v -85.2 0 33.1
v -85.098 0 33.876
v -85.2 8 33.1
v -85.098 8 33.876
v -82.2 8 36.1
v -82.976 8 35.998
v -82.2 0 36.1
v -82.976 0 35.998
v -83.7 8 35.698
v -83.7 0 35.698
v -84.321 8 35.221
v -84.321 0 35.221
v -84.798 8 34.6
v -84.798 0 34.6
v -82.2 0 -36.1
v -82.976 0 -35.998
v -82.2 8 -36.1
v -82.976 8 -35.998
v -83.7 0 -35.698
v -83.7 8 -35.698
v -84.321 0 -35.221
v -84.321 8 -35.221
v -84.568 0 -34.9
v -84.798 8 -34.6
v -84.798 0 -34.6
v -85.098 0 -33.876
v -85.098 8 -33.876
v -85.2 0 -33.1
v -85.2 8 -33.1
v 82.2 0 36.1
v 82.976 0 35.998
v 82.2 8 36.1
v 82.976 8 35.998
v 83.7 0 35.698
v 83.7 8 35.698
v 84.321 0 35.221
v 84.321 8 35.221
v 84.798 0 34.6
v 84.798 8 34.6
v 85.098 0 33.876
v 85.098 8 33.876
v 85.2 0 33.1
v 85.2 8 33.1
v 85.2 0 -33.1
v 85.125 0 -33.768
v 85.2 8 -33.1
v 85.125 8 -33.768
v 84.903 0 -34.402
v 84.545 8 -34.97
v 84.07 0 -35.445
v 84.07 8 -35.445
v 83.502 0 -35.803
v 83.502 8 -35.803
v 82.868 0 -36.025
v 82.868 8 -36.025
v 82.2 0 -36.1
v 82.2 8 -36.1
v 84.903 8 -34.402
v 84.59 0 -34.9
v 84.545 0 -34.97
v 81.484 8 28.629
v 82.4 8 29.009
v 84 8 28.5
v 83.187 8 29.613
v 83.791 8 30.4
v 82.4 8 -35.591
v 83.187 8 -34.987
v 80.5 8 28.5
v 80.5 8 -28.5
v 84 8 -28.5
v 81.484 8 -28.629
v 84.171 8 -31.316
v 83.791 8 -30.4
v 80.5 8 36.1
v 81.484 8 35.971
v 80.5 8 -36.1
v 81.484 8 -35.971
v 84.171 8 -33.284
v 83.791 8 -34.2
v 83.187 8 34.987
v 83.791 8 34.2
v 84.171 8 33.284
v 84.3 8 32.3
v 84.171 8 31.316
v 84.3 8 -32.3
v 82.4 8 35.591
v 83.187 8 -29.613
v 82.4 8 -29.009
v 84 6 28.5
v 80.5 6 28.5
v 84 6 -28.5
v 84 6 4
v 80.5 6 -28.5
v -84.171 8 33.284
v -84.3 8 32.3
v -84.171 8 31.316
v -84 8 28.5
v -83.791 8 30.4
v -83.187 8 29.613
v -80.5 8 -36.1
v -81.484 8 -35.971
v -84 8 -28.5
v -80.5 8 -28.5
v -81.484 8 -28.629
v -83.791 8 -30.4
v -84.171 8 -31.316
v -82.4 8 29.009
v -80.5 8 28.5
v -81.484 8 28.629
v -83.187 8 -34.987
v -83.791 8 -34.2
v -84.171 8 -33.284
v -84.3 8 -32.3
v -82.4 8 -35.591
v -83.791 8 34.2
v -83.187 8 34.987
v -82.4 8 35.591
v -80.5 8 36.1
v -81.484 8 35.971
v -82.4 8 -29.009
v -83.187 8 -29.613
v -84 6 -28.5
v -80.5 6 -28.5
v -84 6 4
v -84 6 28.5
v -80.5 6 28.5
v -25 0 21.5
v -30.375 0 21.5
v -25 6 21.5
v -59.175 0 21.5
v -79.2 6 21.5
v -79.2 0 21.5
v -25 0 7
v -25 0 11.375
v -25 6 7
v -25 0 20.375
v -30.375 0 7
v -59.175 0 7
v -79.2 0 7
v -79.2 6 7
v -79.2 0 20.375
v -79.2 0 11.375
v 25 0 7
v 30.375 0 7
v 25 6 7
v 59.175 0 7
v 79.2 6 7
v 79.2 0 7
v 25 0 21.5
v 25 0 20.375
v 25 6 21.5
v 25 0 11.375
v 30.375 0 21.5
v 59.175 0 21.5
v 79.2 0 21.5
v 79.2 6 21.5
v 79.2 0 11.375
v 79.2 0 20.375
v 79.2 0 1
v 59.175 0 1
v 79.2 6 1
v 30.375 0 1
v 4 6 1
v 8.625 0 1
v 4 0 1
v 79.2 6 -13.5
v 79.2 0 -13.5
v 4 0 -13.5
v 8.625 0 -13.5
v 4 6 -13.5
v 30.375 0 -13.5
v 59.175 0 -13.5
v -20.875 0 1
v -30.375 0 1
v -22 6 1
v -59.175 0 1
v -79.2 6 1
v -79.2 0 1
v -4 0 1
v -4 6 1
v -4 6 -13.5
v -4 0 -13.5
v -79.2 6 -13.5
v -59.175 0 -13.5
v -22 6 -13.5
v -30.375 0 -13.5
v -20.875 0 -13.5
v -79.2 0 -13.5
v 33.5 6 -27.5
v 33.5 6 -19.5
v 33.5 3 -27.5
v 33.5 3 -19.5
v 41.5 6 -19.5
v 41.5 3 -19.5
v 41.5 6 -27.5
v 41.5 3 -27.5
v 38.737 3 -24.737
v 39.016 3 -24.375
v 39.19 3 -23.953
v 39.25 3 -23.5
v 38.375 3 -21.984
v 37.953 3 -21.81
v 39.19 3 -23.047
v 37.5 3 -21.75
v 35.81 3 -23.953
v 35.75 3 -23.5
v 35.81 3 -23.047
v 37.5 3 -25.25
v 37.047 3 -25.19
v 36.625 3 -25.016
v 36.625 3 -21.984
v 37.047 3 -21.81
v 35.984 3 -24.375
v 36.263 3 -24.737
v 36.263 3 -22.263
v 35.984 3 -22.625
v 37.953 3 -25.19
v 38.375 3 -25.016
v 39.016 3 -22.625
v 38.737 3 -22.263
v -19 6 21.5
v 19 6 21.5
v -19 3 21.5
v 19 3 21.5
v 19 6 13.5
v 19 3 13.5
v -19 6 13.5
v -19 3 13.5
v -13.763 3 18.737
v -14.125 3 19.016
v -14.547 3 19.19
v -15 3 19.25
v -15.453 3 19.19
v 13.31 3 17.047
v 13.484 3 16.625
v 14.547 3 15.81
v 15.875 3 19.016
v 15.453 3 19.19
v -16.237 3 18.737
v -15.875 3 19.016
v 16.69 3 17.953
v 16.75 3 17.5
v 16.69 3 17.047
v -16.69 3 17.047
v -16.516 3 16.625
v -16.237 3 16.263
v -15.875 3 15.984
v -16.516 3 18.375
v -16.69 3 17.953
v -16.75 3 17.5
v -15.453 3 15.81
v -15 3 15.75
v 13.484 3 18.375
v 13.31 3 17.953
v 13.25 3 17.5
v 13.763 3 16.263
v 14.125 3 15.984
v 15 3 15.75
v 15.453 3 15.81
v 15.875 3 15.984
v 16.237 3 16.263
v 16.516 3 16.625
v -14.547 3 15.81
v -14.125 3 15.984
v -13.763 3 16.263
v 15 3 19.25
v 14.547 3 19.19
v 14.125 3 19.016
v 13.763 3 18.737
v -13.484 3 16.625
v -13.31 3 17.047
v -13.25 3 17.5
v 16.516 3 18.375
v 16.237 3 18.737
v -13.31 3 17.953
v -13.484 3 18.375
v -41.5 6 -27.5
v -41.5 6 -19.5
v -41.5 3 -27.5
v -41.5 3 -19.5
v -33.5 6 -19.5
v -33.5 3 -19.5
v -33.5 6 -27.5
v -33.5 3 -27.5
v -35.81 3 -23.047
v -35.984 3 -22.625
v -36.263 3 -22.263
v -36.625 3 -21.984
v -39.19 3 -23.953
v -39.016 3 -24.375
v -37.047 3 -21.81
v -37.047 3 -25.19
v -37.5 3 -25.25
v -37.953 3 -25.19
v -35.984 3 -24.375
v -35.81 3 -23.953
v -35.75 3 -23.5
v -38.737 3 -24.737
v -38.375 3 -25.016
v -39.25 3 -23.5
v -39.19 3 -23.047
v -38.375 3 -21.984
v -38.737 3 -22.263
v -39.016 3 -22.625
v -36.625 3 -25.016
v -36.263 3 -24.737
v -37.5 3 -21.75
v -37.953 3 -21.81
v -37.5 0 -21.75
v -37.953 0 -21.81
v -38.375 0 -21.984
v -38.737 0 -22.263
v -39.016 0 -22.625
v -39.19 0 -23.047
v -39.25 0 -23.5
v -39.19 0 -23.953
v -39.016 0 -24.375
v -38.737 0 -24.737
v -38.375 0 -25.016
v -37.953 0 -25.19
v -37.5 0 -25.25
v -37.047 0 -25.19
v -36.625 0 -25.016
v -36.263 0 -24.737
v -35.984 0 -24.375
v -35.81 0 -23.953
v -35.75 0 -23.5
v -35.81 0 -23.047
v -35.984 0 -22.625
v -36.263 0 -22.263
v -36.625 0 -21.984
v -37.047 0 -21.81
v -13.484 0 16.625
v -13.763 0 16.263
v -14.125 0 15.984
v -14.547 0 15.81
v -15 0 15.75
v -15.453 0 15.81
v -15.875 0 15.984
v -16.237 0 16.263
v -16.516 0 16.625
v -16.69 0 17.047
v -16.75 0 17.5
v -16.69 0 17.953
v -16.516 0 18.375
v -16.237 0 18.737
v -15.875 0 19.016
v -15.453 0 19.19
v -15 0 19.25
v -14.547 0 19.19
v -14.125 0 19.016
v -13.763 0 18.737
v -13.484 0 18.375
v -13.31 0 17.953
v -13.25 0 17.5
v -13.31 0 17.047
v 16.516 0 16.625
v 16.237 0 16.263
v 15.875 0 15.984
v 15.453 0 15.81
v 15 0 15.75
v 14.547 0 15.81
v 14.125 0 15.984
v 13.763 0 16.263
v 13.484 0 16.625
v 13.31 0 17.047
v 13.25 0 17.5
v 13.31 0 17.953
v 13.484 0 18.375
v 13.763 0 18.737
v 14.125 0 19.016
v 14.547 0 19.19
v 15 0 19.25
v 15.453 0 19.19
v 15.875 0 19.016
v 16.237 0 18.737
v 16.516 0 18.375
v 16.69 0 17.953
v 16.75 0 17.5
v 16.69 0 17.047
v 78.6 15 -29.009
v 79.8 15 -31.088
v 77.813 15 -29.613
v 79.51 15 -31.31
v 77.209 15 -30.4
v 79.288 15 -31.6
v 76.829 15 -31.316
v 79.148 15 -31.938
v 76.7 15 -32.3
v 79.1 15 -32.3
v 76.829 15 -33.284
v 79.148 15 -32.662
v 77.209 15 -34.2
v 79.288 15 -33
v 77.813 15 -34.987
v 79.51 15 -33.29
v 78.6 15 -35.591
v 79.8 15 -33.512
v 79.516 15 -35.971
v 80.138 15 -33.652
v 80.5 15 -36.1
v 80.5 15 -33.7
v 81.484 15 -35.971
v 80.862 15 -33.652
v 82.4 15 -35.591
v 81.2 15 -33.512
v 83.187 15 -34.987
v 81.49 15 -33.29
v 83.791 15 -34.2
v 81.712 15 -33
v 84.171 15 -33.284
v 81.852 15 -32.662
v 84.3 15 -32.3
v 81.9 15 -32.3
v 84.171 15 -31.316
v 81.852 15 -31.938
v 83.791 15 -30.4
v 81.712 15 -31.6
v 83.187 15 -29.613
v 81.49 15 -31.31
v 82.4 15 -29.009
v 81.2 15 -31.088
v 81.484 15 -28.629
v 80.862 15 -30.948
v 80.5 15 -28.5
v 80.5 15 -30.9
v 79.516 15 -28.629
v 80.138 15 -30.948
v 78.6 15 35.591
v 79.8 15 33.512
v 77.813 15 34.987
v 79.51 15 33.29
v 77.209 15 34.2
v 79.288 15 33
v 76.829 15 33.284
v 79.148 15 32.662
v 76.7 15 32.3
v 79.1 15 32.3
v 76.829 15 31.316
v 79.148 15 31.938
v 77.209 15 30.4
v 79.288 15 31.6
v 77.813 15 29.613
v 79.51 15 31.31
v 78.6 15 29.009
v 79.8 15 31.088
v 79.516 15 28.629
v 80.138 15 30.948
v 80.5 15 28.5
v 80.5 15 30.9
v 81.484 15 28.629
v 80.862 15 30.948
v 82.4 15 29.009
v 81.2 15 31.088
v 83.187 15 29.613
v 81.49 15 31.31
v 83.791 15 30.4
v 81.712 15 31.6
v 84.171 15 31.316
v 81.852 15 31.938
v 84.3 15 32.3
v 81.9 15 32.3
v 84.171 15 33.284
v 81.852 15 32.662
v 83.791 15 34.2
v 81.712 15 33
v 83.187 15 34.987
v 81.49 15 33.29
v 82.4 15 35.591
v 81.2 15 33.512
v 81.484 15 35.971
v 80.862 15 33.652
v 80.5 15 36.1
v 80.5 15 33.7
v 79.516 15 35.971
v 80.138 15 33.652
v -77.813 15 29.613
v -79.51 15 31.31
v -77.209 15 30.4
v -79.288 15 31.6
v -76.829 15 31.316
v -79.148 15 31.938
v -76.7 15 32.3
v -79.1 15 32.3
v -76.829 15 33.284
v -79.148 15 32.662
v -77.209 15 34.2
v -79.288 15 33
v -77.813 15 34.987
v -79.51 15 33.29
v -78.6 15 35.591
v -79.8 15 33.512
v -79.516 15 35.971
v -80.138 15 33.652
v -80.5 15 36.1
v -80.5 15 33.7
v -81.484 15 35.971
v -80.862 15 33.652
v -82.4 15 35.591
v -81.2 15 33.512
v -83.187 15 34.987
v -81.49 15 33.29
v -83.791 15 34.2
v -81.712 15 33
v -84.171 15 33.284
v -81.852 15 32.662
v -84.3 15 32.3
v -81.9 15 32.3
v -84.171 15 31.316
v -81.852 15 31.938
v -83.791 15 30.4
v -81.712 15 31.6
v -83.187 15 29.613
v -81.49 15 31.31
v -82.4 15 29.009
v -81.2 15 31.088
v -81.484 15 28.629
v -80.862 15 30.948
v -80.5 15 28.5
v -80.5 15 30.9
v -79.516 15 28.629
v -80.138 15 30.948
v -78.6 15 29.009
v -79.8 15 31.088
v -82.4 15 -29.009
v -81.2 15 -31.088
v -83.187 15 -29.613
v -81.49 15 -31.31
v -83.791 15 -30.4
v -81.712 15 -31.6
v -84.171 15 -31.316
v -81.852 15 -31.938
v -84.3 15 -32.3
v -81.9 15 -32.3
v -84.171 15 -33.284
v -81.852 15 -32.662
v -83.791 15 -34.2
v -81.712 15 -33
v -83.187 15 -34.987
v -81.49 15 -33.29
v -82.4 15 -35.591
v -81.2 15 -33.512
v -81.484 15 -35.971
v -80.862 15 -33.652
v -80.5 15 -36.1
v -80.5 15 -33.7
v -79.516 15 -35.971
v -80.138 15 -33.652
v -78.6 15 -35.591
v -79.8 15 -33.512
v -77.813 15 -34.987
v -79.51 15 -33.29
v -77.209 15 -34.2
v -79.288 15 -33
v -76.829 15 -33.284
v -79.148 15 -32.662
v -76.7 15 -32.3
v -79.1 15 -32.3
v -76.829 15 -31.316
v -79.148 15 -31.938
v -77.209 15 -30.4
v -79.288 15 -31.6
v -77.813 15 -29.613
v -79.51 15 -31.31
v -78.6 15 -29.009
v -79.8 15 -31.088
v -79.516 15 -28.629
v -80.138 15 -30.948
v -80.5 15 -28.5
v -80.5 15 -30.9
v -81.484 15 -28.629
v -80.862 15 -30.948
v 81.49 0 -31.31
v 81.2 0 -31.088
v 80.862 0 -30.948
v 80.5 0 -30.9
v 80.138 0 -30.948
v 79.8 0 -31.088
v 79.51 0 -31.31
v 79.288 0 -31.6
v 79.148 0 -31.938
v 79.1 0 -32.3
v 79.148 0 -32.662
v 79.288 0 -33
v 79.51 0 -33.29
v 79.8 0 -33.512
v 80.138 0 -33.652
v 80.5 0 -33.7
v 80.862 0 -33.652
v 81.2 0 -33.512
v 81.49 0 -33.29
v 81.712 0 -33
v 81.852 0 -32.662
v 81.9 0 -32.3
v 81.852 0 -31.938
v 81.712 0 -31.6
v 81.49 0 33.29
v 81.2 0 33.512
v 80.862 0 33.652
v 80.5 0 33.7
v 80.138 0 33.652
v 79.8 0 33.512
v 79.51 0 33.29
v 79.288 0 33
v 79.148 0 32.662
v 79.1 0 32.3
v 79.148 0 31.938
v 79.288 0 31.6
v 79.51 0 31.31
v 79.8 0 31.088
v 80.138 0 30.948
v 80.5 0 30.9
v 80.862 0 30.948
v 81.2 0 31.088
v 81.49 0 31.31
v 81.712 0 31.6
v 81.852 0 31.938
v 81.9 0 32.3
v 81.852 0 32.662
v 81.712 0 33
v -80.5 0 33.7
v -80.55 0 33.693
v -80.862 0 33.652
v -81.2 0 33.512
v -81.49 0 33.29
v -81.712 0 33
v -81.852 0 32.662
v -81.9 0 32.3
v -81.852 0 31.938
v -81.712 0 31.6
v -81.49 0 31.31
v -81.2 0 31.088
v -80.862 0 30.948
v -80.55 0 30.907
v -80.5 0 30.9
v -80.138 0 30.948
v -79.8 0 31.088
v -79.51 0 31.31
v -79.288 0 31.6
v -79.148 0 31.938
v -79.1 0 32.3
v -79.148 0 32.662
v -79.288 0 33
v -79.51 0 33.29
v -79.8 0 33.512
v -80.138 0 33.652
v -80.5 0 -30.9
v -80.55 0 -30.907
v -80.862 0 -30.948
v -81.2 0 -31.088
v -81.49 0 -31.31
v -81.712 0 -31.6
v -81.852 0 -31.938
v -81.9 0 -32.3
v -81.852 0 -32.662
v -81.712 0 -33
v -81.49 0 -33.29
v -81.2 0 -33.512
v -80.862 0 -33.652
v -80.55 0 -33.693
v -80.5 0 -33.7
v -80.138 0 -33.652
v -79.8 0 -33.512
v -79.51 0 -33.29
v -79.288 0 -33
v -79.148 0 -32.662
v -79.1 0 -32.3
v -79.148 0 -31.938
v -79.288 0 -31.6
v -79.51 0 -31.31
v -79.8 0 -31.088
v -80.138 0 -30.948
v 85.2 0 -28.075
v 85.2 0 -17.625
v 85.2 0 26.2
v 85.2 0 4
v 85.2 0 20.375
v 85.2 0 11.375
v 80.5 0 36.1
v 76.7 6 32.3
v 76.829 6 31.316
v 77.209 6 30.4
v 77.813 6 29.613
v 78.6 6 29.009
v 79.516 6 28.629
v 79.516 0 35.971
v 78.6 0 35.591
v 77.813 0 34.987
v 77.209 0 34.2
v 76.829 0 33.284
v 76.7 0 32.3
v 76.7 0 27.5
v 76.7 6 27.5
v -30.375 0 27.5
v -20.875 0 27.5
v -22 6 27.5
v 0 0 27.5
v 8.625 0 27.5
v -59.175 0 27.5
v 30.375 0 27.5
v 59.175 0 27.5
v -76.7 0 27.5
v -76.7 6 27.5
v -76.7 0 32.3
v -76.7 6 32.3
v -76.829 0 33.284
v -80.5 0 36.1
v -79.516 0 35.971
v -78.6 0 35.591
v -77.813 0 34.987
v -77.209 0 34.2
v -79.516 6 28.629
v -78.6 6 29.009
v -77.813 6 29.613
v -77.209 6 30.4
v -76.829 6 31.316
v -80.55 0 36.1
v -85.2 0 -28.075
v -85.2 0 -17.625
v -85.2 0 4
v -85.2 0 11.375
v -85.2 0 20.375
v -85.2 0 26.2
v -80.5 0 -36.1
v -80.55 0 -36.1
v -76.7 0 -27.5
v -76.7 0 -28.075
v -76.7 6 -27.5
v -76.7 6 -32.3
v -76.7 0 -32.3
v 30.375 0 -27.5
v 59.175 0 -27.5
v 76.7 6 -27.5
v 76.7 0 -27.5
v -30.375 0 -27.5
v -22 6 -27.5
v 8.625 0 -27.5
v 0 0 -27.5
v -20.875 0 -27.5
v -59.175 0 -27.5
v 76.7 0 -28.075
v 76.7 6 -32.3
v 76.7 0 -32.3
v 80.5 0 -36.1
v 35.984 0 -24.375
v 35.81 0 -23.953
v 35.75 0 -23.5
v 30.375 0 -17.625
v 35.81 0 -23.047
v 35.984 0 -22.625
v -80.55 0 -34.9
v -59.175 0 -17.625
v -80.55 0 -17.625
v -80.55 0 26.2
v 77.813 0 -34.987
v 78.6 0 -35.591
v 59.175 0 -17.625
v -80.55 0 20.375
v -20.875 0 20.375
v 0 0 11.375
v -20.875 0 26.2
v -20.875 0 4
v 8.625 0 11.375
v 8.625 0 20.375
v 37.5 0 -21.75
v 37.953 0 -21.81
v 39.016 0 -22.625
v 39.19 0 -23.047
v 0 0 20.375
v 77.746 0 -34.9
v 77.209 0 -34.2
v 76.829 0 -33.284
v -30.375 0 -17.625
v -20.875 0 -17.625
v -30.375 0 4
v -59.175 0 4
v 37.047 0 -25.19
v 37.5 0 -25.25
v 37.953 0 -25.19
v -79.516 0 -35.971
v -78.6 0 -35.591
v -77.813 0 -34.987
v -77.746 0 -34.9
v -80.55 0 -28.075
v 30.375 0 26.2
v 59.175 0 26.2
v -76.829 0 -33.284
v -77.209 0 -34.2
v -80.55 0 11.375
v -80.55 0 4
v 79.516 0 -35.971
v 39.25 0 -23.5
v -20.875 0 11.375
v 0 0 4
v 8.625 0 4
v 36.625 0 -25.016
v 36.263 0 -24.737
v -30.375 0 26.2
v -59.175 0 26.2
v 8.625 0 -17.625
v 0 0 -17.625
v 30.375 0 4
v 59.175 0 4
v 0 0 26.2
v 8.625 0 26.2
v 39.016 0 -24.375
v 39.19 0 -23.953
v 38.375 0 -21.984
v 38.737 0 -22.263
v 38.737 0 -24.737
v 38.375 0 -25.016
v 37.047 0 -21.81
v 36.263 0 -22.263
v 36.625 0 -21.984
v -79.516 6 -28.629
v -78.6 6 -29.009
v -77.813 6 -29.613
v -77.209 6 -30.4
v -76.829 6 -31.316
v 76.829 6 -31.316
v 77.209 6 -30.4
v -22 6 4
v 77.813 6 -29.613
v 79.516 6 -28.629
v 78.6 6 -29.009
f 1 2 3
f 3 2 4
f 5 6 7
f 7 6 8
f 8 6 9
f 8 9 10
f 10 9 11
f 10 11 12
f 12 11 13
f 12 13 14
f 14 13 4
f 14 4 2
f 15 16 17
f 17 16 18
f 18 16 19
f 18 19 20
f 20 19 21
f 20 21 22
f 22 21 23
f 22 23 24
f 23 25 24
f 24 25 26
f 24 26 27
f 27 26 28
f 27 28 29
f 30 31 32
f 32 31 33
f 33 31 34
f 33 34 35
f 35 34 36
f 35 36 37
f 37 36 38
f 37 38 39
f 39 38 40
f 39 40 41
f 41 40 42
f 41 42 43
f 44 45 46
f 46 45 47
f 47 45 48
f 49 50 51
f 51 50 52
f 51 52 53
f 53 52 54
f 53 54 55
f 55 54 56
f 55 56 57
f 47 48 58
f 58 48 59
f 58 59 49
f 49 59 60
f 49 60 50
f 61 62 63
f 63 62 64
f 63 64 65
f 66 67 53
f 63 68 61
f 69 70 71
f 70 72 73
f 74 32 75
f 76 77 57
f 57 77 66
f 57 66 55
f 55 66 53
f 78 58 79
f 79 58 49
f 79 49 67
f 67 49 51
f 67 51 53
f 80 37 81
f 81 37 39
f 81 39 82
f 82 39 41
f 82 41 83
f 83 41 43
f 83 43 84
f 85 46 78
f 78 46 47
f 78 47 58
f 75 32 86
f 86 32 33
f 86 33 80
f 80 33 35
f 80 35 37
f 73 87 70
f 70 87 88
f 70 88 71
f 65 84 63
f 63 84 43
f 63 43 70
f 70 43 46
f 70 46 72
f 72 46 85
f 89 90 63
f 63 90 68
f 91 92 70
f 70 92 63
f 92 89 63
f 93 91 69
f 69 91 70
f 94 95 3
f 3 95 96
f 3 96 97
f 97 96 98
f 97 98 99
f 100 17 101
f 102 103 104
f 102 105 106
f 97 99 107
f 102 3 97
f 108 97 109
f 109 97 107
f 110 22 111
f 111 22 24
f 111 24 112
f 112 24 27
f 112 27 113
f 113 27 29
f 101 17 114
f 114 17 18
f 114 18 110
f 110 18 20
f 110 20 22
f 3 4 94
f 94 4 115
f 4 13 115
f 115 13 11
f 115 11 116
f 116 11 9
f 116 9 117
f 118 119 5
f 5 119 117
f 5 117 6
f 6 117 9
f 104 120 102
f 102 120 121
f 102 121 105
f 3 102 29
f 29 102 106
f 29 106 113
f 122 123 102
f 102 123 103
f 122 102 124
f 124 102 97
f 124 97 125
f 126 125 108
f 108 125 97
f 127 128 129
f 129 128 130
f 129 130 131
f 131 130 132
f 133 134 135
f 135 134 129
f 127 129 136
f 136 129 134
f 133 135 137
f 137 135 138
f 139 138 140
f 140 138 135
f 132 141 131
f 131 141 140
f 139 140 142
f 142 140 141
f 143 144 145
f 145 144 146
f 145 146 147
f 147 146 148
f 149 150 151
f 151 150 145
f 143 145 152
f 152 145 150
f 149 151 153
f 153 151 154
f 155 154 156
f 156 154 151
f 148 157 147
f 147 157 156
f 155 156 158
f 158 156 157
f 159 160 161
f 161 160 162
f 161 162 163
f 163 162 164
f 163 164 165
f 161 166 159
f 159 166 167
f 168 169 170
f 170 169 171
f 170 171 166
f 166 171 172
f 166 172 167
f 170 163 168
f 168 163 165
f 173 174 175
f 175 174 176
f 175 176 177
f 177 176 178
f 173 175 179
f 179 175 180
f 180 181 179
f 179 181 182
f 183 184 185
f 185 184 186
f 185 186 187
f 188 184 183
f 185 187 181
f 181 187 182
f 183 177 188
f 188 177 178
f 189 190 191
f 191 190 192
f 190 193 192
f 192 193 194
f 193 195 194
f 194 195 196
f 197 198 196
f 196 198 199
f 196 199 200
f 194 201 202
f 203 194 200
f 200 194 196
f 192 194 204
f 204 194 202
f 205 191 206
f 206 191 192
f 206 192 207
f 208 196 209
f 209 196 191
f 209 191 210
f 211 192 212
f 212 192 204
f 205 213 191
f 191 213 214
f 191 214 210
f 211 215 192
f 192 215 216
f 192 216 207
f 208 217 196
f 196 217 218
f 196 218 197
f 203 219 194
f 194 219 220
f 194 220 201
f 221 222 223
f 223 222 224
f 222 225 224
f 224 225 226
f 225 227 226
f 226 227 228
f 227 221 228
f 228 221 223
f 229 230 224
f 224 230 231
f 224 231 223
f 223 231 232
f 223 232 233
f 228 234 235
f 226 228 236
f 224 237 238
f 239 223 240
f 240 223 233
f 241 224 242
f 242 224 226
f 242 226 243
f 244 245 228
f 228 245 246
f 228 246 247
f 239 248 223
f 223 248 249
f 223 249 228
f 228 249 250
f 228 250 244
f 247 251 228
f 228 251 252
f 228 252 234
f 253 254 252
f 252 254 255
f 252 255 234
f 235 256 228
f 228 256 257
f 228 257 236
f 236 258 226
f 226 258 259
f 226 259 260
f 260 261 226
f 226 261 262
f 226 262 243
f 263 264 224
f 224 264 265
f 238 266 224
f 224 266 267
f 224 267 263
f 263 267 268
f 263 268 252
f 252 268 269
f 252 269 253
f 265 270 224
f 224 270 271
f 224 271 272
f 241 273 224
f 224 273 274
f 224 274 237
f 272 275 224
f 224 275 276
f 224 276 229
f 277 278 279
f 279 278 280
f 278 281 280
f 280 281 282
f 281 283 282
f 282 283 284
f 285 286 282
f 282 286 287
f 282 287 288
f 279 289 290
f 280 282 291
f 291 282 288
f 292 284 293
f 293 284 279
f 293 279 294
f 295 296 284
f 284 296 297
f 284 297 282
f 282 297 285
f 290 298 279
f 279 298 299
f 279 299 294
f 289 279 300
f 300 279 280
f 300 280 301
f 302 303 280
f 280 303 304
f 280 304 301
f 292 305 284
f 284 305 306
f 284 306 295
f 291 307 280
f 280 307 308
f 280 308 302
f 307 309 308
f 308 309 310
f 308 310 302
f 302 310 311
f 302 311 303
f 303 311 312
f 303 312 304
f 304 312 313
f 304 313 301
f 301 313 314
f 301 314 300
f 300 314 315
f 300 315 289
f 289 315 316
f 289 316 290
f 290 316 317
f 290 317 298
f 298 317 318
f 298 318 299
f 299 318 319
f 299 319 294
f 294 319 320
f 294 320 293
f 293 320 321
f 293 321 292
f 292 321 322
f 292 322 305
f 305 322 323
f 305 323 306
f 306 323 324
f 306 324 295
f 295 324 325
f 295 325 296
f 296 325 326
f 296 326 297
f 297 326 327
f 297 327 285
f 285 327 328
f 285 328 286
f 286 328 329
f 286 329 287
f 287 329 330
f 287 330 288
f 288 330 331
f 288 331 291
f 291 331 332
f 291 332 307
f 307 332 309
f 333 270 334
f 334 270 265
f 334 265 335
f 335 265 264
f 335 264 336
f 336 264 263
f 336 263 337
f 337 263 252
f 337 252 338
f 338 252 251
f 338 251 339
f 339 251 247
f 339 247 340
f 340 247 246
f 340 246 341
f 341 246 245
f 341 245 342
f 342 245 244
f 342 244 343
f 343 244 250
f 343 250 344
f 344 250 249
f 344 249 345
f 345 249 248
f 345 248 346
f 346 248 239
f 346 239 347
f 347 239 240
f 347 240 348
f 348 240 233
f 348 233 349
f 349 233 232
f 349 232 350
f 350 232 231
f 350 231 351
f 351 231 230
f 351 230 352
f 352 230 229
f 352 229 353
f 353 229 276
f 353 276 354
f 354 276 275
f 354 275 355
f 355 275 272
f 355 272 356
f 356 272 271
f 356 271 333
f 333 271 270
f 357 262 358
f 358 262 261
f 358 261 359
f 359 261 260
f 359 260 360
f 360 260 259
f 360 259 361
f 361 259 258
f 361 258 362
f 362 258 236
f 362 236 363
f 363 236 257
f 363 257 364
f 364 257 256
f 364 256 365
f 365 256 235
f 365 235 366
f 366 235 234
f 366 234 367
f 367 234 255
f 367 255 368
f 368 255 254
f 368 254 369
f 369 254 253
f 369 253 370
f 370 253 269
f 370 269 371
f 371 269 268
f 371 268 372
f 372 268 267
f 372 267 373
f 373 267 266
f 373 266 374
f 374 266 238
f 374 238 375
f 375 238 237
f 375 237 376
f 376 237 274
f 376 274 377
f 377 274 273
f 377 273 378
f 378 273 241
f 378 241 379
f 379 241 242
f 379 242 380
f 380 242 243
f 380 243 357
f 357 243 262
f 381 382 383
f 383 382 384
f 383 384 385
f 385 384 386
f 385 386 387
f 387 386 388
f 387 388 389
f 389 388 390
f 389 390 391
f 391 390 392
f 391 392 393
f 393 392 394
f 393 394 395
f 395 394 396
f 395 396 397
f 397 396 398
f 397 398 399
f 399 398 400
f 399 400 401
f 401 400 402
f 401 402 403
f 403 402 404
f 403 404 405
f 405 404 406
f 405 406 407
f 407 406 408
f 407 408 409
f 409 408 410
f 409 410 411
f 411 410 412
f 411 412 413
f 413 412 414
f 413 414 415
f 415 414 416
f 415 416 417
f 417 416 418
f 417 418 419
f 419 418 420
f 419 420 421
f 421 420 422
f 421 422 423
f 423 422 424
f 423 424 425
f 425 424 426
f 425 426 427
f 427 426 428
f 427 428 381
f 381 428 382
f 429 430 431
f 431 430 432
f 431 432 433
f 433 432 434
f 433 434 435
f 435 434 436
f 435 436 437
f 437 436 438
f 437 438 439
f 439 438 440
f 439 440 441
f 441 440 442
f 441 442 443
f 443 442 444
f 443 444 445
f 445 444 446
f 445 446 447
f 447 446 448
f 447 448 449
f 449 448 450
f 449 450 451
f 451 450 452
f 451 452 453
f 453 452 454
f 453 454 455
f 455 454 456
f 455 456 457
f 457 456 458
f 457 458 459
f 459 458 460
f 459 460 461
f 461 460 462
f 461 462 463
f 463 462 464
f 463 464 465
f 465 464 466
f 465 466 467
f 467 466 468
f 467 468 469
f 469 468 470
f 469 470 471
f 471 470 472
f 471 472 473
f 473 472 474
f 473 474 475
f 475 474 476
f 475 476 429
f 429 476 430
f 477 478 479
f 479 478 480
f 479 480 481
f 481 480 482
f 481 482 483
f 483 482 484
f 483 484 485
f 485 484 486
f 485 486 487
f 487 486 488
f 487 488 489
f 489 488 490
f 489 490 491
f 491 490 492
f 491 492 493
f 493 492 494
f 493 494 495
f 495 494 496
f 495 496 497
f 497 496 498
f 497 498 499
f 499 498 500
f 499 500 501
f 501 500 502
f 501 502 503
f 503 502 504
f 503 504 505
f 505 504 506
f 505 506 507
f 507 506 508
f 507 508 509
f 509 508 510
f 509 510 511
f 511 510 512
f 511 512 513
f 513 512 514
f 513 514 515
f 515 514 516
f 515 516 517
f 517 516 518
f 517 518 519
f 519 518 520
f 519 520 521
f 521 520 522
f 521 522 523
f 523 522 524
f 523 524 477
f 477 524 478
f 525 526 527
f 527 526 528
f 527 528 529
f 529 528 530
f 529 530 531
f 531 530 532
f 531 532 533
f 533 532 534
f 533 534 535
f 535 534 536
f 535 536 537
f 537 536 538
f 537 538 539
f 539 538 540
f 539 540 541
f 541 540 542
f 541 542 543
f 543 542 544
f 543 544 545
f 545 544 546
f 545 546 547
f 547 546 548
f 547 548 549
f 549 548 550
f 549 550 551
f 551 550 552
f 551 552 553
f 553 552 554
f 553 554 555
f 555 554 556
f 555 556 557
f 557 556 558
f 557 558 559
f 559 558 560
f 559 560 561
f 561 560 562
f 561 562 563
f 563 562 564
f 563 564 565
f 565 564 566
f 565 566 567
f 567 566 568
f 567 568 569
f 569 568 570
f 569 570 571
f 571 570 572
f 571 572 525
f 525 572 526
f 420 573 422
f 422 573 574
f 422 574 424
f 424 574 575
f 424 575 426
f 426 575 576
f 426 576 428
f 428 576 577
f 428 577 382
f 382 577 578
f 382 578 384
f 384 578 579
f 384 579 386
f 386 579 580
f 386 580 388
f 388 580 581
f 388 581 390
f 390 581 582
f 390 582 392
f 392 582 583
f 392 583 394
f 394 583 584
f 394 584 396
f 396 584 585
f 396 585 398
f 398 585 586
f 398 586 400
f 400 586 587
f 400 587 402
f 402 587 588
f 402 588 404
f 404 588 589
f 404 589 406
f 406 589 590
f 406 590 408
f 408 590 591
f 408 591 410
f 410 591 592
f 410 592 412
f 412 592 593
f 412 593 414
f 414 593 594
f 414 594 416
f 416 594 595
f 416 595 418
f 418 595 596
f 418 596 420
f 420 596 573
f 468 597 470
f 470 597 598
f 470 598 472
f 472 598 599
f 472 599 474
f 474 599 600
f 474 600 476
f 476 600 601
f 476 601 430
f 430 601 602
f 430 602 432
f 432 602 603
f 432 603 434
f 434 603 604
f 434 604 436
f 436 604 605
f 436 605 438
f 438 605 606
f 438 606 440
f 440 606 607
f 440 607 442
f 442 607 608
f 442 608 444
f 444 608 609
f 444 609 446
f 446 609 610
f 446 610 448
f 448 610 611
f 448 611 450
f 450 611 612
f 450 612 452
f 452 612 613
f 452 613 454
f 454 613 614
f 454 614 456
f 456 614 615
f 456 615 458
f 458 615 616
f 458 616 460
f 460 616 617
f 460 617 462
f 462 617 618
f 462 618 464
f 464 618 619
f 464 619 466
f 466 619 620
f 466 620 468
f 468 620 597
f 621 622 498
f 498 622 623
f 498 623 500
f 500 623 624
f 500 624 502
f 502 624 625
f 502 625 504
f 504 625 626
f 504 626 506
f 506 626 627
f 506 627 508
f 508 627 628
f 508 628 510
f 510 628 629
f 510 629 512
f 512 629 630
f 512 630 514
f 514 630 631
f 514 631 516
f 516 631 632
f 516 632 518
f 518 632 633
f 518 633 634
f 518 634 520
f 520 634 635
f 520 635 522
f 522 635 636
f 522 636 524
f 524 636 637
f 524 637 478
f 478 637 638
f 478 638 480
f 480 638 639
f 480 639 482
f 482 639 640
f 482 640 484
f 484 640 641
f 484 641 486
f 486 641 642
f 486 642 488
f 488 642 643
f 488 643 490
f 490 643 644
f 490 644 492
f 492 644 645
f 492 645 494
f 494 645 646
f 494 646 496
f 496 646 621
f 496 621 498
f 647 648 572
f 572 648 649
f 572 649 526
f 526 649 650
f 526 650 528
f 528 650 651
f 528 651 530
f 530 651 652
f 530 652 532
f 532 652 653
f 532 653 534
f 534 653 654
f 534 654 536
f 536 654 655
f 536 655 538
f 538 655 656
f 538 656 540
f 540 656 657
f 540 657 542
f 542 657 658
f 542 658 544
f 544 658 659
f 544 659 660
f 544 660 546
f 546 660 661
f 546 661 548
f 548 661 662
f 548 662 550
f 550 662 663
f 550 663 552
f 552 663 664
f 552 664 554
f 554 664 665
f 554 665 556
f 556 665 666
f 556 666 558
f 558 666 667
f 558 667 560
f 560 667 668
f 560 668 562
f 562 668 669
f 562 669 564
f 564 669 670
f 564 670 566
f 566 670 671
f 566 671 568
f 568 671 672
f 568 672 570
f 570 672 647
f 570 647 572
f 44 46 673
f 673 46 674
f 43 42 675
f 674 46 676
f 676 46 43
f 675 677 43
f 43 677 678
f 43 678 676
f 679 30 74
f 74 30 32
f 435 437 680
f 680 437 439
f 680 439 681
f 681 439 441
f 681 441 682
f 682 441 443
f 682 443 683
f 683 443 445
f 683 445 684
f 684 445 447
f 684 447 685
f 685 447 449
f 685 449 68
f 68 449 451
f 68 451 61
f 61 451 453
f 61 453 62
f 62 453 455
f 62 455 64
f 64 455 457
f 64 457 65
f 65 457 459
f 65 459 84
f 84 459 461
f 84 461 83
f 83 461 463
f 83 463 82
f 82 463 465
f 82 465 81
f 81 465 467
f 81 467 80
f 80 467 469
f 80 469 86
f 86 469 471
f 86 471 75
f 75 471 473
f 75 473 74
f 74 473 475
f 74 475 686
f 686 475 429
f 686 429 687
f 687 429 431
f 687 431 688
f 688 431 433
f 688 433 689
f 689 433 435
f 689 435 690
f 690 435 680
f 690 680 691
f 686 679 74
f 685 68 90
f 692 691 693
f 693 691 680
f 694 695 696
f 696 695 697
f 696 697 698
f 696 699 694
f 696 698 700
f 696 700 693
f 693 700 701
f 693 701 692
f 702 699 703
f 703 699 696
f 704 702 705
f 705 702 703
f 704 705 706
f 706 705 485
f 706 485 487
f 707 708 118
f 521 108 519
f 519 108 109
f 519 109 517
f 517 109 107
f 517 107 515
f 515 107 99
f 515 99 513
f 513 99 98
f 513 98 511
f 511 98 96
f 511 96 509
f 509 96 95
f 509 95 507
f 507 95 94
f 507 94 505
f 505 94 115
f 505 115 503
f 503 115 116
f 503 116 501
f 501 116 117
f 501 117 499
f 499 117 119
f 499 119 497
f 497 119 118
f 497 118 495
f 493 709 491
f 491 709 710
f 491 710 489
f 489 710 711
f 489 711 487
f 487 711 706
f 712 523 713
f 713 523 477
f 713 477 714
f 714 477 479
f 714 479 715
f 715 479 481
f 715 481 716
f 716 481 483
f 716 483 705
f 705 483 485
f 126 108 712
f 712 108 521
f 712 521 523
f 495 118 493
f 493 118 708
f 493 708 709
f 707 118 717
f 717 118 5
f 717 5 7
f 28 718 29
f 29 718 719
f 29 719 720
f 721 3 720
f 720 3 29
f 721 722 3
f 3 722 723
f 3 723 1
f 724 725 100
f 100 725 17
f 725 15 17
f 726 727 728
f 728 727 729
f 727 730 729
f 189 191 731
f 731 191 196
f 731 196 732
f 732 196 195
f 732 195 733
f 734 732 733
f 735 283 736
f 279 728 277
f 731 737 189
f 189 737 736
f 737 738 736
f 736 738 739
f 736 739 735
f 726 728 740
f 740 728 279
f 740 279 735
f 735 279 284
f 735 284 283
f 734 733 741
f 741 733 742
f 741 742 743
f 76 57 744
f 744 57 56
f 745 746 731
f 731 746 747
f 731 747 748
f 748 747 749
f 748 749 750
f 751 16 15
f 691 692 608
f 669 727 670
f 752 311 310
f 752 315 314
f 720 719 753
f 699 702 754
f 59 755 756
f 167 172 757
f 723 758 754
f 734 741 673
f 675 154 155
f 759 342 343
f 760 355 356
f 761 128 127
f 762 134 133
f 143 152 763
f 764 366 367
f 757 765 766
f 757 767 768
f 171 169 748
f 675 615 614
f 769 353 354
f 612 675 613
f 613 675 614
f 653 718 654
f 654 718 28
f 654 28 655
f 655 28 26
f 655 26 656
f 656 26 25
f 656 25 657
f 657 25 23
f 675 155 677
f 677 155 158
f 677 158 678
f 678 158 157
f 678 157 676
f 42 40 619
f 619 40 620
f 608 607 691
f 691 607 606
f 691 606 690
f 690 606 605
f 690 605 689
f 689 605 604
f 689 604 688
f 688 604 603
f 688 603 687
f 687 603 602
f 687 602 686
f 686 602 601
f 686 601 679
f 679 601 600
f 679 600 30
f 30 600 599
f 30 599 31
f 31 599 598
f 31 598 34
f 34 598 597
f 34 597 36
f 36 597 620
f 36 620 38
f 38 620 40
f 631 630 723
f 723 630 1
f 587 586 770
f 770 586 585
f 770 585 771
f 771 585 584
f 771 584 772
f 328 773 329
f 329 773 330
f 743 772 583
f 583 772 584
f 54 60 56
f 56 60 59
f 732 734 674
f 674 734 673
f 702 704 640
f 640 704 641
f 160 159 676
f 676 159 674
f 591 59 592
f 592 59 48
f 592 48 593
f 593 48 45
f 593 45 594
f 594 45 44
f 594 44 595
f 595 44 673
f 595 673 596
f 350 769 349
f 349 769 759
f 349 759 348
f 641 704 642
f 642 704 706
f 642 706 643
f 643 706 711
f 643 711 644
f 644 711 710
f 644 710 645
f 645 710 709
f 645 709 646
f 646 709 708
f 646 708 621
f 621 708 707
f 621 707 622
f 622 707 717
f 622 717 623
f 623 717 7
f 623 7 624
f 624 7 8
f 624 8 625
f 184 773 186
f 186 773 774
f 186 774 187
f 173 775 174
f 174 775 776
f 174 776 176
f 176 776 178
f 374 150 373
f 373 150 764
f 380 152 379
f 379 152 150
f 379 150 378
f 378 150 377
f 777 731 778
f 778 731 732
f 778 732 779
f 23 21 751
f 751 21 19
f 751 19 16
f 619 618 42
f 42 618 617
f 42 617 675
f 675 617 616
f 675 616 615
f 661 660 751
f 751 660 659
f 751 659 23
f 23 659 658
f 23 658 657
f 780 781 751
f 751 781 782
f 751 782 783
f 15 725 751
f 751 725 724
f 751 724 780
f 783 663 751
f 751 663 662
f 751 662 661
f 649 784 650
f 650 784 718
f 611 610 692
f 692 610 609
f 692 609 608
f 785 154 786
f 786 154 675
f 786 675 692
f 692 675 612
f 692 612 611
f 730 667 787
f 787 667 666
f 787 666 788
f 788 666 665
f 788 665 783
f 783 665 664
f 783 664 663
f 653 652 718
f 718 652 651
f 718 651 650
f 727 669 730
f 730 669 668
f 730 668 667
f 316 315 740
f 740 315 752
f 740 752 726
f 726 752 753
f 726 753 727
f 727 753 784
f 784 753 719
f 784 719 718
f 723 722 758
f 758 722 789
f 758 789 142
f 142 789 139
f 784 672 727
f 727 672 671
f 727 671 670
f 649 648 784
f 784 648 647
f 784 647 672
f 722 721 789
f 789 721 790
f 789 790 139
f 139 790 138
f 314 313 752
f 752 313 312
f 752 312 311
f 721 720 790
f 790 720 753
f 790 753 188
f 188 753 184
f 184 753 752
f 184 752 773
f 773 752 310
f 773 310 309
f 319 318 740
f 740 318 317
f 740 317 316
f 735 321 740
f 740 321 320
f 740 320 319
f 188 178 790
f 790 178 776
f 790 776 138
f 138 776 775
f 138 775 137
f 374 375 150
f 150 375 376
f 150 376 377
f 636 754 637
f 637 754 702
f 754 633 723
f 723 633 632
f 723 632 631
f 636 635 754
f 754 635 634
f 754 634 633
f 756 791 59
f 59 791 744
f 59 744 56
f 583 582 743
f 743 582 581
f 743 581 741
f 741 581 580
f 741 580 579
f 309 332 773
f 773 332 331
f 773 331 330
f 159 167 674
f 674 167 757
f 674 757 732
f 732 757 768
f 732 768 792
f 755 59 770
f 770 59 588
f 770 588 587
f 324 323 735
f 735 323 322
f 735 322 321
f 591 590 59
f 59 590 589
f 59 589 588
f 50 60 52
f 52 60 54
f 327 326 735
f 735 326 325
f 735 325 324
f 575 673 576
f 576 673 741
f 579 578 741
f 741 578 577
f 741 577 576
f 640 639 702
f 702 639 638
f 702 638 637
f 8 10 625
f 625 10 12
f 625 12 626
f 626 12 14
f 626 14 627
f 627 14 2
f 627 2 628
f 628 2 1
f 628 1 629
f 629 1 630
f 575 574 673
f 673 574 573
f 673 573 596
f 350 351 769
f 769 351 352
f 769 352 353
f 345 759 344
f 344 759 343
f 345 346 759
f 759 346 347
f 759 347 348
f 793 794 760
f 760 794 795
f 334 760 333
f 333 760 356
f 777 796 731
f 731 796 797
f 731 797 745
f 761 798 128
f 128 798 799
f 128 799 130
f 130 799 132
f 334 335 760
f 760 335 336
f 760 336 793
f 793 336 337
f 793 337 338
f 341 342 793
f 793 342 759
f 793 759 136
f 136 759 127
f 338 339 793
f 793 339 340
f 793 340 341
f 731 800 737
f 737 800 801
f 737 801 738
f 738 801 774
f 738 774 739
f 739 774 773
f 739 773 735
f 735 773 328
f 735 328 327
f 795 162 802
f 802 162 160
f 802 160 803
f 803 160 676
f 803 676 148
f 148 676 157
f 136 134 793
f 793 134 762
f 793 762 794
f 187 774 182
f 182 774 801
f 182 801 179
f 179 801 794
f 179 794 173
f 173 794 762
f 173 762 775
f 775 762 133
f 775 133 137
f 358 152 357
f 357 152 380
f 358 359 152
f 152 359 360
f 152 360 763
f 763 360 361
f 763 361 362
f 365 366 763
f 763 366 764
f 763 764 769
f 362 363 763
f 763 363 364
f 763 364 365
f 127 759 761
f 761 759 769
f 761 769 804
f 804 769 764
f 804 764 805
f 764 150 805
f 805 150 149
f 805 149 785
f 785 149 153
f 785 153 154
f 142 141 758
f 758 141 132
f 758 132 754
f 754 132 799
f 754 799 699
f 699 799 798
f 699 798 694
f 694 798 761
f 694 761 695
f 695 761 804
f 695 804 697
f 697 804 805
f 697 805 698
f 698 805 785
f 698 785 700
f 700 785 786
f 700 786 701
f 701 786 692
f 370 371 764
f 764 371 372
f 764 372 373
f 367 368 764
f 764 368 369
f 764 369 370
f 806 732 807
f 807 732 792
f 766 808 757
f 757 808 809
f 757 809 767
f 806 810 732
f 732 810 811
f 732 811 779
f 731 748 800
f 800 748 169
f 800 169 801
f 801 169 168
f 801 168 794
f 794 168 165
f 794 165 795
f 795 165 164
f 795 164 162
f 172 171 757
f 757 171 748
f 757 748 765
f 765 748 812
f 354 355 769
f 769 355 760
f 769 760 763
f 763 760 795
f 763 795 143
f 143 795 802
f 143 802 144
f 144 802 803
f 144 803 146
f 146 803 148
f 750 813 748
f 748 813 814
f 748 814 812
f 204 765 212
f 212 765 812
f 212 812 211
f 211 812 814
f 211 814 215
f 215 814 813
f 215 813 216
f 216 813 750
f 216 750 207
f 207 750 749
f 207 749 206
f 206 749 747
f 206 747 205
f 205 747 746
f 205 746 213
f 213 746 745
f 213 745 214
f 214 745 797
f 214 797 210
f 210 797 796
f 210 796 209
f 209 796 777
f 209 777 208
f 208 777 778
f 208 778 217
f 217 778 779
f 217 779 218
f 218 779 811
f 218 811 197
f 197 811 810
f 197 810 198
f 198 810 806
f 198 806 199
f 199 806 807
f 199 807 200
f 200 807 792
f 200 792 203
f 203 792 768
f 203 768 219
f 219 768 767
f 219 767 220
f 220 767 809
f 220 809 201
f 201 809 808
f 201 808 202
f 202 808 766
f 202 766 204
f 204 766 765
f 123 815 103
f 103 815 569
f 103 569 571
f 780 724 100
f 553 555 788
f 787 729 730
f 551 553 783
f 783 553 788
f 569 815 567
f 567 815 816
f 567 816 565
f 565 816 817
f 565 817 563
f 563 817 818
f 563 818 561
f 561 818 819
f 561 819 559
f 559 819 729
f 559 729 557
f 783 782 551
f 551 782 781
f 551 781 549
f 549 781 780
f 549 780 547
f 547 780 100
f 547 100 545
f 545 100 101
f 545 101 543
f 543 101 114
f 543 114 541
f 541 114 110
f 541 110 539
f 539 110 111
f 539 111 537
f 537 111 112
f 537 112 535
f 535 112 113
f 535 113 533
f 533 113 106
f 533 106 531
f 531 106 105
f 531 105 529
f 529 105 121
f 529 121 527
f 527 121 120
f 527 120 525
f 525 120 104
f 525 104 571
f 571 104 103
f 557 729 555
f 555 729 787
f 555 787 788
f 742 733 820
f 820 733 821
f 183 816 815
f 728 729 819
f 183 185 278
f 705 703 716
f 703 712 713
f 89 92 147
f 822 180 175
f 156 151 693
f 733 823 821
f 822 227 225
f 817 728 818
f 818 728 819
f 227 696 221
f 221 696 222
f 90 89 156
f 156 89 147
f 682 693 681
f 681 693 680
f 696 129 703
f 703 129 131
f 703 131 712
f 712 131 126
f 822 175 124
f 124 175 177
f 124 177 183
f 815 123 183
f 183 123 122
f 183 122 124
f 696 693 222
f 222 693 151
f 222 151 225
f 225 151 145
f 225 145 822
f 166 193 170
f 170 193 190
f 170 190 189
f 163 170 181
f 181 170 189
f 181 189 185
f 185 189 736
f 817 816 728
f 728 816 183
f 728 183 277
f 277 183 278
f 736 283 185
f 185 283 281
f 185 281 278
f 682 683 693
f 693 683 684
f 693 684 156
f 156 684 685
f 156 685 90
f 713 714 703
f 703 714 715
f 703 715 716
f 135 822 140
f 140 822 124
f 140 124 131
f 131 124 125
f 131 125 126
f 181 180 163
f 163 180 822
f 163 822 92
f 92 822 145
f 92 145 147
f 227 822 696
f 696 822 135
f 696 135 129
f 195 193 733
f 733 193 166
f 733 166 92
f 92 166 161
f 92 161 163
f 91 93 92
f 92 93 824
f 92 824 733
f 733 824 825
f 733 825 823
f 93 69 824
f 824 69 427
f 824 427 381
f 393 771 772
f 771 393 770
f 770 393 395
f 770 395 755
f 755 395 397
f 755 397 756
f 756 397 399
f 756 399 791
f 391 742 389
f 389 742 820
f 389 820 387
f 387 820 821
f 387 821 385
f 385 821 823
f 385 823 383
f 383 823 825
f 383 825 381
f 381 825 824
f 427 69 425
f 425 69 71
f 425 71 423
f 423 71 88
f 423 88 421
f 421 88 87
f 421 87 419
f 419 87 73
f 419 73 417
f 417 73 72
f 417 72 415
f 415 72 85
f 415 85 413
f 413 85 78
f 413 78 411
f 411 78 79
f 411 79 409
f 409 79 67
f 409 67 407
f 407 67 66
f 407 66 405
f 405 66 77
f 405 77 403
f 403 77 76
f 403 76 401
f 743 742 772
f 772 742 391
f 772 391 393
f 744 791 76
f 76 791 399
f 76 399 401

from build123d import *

# Parameters (mm, degrees)
SCHIZZO1_R                   = 1.4
ESTRUSIONE_ESTRUSIONE1_DEPTH = 6
SCHIZZO2_R                   = 3.8
SCHIZZO2_R_2                 = 1.4
ESTRUSIONE_ESTRUSIONE2_DEPTH = 9
SCHIZZO3_R                   = 1.75
TAGLIO_ESTRUSIONE1_DEPTH     = 93.969080882
SCHIZZO5_W                   = 8
SCHIZZO5_H                   = 8
SCHIZZO5_W_2                 = 38
TAGLIO_ESTRUSIONE2_DEPTH     = 3
SCHIZZO6_W                   = 75.2
SCHIZZO6_H                   = 14.5
SCHIZZO6_W_2                 = 54.2
TAGLIO_ESTRUSIONE3_DEPTH     = 93.969080882
ESTRUSIONE_ESTRUSIONE4_DEPTH = 2
RACCORDO1_R                  = 3


with BuildPart() as part:
    # Schizzo1 → Estrusione-Estrusione1 (new body)
    with BuildSketch(Plane(origin=(0, 0, 0), x_dir=(1, 0, 0), z_dir=(0, 1, 0))):
        with BuildLine():
            Line((-76.7, -27.5), (-76.7, -32.3))
            ThreePointArc((-76.7, -32.3), (-77.812994231, -34.987005769), (-80.5, -36.1))
            Line((-80.5, -36.1), (-85.2, -36.1))
            Line((-85.2, -36.1), (-85.2, 36.1))
            Line((-85.2, 36.1), (-80.5, 36.1))
            ThreePointArc((-80.5, 36.1), (-77.812994231, 34.987005769), (-76.7, 32.3))
            Line((-76.7, 32.3), (-76.7, 27.5))
            Line((-76.7, 27.5), (76.7, 27.5))
            Line((76.7, 27.5), (76.7, 32.3))
            ThreePointArc((76.7, 32.3), (77.812994231, 34.987005769), (80.5, 36.1))
            Line((80.5, 36.1), (85.2, 36.1))
            Line((85.2, 36.1), (85.2, -36.1))
            Line((85.2, -36.1), (80.5, -36.1))
            ThreePointArc((80.5, -36.1), (77.812994231, -34.987005769), (76.7, -32.3))
            Line((76.7, -32.3), (76.7, -27.5))
            Line((76.7, -27.5), (-76.7, -27.5))
        make_face()
        with Locations(Location((-80.5, 32.3, 0), (0, 0, 270))):
            Circle(SCHIZZO1_R, mode=Mode.SUBTRACT)
        with Locations(Location((-80.5, -32.3, 0), (0, 0, 270))):
            Circle(SCHIZZO1_R, mode=Mode.SUBTRACT)
        with Locations(Location((80.5, -32.3, 0), (0, 0, 270))):
            Circle(SCHIZZO1_R, mode=Mode.SUBTRACT)
        with Locations(Location((80.5, 32.3, 0), (0, 0, 270))):
            Circle(SCHIZZO1_R, mode=Mode.SUBTRACT)
    extrude(amount=ESTRUSIONE_ESTRUSIONE1_DEPTH)

    # Schizzo2 → Estrusione-Estrusione2 (add)
    # profile 1 of 4: a face of its own
    with BuildSketch(Plane(origin=(0, 6, 0), x_dir=(1, 0, 0), z_dir=(0, 1, 0))):
        with Locations(Location((-80.5, 32.3, 0), (0, 0, 90))):
            Circle(SCHIZZO2_R)
        with Locations(Location((-80.5, 32.3, 0), (0, 0, 270))):
            Circle(SCHIZZO2_R_2, mode=Mode.SUBTRACT)
    # profile 2 of 4: a face of its own
    with BuildSketch(Plane(origin=(0, 6, 0), x_dir=(1, 0, 0), z_dir=(0, 1, 0))):
        with Locations(Location((-80.5, -32.3, 0), (0, 0, 270))):
            Circle(SCHIZZO2_R)
        with Locations(Location((-80.5, -32.3, 0), (0, 0, 270))):
            Circle(SCHIZZO2_R_2, mode=Mode.SUBTRACT)
    # profile 3 of 4: a face of its own
    with BuildSketch(Plane(origin=(0, 6, 0), x_dir=(1, 0, 0), z_dir=(0, 1, 0))):
        with Locations(Location((80.5, -32.3, 0), (0, 0, 270))):
            Circle(SCHIZZO2_R)
        with Locations(Location((80.5, -32.3, 0), (0, 0, 270))):
            Circle(SCHIZZO2_R_2, mode=Mode.SUBTRACT)
    # profile 4 of 4: a face of its own
    with BuildSketch(Plane(origin=(0, 6, 0), x_dir=(1, 0, 0), z_dir=(0, 1, 0))):
        with Locations(Location((80.5, 32.3, 0), (0, 0, 90))):
            Circle(SCHIZZO2_R)
        with Locations(Location((80.5, 32.3, 0), (0, 0, 270))):
            Circle(SCHIZZO2_R_2, mode=Mode.SUBTRACT)
    extrude(amount=ESTRUSIONE_ESTRUSIONE2_DEPTH)

    # Schizzo3 → Taglio-Estrusione1 (cut, through all)
    with BuildSketch(Plane(origin=(0, 6, 0), x_dir=(1, 0, 0), z_dir=(0, 1, 0))):
        with Locations(Location((-37.5, 23.5, 0), (0, 0, 270))):
            Circle(SCHIZZO3_R)
        with Locations(Location((-15, -17.5, 0), (0, 0, 270))):
            Circle(SCHIZZO3_R)
        with Locations(Location((15, -17.5, 0), (0, 0, 270))):
            Circle(SCHIZZO3_R)
        with Locations(Location((37.5, 23.5, 0), (0, 0, 270))):
            Circle(SCHIZZO3_R)
    extrude(amount=-TAGLIO_ESTRUSIONE1_DEPTH, mode=Mode.SUBTRACT)

    # Schizzo5 → Taglio-Estrusione2 (cut)
    with BuildSketch(Plane(origin=(0, 6, 0), x_dir=(1, 0, 0), z_dir=(0, 1, 0))):
        with Locations((37.5, 23.5)):
            Rectangle(SCHIZZO5_W, SCHIZZO5_H)
        with Locations((-37.5, 23.5)):
            Rectangle(SCHIZZO5_W, SCHIZZO5_H)
        with Locations((0, -17.5)):
            Rectangle(SCHIZZO5_W_2, SCHIZZO5_H)
    extrude(amount=-TAGLIO_ESTRUSIONE2_DEPTH, mode=Mode.SUBTRACT)

    # Schizzo6 → Taglio-Estrusione3 (cut, through all)
    with BuildSketch(Plane(origin=(0, 6, 0), x_dir=(1, 0, 0), z_dir=(0, 1, 0))):
        with Locations((-41.6, 6.25)):
            Rectangle(SCHIZZO6_W, SCHIZZO6_H)
        with Locations((41.6, 6.25)):
            Rectangle(SCHIZZO6_W, SCHIZZO6_H)
        with Locations((-52.1, -14.25)):
            Rectangle(SCHIZZO6_W_2, SCHIZZO6_H)
        with Locations((52.1, -14.25)):
            Rectangle(SCHIZZO6_W_2, SCHIZZO6_H)
    extrude(amount=-TAGLIO_ESTRUSIONE3_DEPTH, mode=Mode.SUBTRACT)

    # Schizzo7 → Estrusione-Estrusione4 (add)
    with BuildSketch(Plane(origin=(0, 6, 0), x_dir=(1, 0, 0), z_dir=(0, 1, 0))):
        with BuildLine():
            Line((-80.5, 36.1), (-85.2, 36.1))
            Line((-85.2, 36.1), (-85.2, -36.1))
            Line((-85.2, -36.1), (-80.5, -36.1))
            ThreePointArc((-80.5, -36.1), (-84.3, -32.3), (-80.5, -28.5))
            Line((-80.5, -28.5), (-84, -28.5))
            Line((-84, -28.5), (-84, 28.5))
            Line((-84, 28.5), (-80.5, 28.5))
            ThreePointArc((-80.5, 28.5), (-84.3, 32.3), (-80.5, 36.1))
        make_face()
    estrusione_estrusione4 = extrude(amount=ESTRUSIONE_ESTRUSIONE4_DEPTH)

    # Specchia3: Estrusione-Estrusione4 across plane
    add(estrusione_estrusione4.mirror(Plane(origin=(0, 0, 0), x_dir=(0, 0, 1), z_dir=(1, 0, 0))))

    # Raccordo1
    raccordo1_edges = [part.edges().sort_by_distance(p)[0] for p in [
        (85.2, 4, -36.1),
        (85.2, 4, 36.1),
        (-85.2, 3, 36.1),
        (-85.2, 3, -36.1),
    ]]
    fillet(raccordo1_edges, radius=RACCORDO1_R)


solid = part.part
